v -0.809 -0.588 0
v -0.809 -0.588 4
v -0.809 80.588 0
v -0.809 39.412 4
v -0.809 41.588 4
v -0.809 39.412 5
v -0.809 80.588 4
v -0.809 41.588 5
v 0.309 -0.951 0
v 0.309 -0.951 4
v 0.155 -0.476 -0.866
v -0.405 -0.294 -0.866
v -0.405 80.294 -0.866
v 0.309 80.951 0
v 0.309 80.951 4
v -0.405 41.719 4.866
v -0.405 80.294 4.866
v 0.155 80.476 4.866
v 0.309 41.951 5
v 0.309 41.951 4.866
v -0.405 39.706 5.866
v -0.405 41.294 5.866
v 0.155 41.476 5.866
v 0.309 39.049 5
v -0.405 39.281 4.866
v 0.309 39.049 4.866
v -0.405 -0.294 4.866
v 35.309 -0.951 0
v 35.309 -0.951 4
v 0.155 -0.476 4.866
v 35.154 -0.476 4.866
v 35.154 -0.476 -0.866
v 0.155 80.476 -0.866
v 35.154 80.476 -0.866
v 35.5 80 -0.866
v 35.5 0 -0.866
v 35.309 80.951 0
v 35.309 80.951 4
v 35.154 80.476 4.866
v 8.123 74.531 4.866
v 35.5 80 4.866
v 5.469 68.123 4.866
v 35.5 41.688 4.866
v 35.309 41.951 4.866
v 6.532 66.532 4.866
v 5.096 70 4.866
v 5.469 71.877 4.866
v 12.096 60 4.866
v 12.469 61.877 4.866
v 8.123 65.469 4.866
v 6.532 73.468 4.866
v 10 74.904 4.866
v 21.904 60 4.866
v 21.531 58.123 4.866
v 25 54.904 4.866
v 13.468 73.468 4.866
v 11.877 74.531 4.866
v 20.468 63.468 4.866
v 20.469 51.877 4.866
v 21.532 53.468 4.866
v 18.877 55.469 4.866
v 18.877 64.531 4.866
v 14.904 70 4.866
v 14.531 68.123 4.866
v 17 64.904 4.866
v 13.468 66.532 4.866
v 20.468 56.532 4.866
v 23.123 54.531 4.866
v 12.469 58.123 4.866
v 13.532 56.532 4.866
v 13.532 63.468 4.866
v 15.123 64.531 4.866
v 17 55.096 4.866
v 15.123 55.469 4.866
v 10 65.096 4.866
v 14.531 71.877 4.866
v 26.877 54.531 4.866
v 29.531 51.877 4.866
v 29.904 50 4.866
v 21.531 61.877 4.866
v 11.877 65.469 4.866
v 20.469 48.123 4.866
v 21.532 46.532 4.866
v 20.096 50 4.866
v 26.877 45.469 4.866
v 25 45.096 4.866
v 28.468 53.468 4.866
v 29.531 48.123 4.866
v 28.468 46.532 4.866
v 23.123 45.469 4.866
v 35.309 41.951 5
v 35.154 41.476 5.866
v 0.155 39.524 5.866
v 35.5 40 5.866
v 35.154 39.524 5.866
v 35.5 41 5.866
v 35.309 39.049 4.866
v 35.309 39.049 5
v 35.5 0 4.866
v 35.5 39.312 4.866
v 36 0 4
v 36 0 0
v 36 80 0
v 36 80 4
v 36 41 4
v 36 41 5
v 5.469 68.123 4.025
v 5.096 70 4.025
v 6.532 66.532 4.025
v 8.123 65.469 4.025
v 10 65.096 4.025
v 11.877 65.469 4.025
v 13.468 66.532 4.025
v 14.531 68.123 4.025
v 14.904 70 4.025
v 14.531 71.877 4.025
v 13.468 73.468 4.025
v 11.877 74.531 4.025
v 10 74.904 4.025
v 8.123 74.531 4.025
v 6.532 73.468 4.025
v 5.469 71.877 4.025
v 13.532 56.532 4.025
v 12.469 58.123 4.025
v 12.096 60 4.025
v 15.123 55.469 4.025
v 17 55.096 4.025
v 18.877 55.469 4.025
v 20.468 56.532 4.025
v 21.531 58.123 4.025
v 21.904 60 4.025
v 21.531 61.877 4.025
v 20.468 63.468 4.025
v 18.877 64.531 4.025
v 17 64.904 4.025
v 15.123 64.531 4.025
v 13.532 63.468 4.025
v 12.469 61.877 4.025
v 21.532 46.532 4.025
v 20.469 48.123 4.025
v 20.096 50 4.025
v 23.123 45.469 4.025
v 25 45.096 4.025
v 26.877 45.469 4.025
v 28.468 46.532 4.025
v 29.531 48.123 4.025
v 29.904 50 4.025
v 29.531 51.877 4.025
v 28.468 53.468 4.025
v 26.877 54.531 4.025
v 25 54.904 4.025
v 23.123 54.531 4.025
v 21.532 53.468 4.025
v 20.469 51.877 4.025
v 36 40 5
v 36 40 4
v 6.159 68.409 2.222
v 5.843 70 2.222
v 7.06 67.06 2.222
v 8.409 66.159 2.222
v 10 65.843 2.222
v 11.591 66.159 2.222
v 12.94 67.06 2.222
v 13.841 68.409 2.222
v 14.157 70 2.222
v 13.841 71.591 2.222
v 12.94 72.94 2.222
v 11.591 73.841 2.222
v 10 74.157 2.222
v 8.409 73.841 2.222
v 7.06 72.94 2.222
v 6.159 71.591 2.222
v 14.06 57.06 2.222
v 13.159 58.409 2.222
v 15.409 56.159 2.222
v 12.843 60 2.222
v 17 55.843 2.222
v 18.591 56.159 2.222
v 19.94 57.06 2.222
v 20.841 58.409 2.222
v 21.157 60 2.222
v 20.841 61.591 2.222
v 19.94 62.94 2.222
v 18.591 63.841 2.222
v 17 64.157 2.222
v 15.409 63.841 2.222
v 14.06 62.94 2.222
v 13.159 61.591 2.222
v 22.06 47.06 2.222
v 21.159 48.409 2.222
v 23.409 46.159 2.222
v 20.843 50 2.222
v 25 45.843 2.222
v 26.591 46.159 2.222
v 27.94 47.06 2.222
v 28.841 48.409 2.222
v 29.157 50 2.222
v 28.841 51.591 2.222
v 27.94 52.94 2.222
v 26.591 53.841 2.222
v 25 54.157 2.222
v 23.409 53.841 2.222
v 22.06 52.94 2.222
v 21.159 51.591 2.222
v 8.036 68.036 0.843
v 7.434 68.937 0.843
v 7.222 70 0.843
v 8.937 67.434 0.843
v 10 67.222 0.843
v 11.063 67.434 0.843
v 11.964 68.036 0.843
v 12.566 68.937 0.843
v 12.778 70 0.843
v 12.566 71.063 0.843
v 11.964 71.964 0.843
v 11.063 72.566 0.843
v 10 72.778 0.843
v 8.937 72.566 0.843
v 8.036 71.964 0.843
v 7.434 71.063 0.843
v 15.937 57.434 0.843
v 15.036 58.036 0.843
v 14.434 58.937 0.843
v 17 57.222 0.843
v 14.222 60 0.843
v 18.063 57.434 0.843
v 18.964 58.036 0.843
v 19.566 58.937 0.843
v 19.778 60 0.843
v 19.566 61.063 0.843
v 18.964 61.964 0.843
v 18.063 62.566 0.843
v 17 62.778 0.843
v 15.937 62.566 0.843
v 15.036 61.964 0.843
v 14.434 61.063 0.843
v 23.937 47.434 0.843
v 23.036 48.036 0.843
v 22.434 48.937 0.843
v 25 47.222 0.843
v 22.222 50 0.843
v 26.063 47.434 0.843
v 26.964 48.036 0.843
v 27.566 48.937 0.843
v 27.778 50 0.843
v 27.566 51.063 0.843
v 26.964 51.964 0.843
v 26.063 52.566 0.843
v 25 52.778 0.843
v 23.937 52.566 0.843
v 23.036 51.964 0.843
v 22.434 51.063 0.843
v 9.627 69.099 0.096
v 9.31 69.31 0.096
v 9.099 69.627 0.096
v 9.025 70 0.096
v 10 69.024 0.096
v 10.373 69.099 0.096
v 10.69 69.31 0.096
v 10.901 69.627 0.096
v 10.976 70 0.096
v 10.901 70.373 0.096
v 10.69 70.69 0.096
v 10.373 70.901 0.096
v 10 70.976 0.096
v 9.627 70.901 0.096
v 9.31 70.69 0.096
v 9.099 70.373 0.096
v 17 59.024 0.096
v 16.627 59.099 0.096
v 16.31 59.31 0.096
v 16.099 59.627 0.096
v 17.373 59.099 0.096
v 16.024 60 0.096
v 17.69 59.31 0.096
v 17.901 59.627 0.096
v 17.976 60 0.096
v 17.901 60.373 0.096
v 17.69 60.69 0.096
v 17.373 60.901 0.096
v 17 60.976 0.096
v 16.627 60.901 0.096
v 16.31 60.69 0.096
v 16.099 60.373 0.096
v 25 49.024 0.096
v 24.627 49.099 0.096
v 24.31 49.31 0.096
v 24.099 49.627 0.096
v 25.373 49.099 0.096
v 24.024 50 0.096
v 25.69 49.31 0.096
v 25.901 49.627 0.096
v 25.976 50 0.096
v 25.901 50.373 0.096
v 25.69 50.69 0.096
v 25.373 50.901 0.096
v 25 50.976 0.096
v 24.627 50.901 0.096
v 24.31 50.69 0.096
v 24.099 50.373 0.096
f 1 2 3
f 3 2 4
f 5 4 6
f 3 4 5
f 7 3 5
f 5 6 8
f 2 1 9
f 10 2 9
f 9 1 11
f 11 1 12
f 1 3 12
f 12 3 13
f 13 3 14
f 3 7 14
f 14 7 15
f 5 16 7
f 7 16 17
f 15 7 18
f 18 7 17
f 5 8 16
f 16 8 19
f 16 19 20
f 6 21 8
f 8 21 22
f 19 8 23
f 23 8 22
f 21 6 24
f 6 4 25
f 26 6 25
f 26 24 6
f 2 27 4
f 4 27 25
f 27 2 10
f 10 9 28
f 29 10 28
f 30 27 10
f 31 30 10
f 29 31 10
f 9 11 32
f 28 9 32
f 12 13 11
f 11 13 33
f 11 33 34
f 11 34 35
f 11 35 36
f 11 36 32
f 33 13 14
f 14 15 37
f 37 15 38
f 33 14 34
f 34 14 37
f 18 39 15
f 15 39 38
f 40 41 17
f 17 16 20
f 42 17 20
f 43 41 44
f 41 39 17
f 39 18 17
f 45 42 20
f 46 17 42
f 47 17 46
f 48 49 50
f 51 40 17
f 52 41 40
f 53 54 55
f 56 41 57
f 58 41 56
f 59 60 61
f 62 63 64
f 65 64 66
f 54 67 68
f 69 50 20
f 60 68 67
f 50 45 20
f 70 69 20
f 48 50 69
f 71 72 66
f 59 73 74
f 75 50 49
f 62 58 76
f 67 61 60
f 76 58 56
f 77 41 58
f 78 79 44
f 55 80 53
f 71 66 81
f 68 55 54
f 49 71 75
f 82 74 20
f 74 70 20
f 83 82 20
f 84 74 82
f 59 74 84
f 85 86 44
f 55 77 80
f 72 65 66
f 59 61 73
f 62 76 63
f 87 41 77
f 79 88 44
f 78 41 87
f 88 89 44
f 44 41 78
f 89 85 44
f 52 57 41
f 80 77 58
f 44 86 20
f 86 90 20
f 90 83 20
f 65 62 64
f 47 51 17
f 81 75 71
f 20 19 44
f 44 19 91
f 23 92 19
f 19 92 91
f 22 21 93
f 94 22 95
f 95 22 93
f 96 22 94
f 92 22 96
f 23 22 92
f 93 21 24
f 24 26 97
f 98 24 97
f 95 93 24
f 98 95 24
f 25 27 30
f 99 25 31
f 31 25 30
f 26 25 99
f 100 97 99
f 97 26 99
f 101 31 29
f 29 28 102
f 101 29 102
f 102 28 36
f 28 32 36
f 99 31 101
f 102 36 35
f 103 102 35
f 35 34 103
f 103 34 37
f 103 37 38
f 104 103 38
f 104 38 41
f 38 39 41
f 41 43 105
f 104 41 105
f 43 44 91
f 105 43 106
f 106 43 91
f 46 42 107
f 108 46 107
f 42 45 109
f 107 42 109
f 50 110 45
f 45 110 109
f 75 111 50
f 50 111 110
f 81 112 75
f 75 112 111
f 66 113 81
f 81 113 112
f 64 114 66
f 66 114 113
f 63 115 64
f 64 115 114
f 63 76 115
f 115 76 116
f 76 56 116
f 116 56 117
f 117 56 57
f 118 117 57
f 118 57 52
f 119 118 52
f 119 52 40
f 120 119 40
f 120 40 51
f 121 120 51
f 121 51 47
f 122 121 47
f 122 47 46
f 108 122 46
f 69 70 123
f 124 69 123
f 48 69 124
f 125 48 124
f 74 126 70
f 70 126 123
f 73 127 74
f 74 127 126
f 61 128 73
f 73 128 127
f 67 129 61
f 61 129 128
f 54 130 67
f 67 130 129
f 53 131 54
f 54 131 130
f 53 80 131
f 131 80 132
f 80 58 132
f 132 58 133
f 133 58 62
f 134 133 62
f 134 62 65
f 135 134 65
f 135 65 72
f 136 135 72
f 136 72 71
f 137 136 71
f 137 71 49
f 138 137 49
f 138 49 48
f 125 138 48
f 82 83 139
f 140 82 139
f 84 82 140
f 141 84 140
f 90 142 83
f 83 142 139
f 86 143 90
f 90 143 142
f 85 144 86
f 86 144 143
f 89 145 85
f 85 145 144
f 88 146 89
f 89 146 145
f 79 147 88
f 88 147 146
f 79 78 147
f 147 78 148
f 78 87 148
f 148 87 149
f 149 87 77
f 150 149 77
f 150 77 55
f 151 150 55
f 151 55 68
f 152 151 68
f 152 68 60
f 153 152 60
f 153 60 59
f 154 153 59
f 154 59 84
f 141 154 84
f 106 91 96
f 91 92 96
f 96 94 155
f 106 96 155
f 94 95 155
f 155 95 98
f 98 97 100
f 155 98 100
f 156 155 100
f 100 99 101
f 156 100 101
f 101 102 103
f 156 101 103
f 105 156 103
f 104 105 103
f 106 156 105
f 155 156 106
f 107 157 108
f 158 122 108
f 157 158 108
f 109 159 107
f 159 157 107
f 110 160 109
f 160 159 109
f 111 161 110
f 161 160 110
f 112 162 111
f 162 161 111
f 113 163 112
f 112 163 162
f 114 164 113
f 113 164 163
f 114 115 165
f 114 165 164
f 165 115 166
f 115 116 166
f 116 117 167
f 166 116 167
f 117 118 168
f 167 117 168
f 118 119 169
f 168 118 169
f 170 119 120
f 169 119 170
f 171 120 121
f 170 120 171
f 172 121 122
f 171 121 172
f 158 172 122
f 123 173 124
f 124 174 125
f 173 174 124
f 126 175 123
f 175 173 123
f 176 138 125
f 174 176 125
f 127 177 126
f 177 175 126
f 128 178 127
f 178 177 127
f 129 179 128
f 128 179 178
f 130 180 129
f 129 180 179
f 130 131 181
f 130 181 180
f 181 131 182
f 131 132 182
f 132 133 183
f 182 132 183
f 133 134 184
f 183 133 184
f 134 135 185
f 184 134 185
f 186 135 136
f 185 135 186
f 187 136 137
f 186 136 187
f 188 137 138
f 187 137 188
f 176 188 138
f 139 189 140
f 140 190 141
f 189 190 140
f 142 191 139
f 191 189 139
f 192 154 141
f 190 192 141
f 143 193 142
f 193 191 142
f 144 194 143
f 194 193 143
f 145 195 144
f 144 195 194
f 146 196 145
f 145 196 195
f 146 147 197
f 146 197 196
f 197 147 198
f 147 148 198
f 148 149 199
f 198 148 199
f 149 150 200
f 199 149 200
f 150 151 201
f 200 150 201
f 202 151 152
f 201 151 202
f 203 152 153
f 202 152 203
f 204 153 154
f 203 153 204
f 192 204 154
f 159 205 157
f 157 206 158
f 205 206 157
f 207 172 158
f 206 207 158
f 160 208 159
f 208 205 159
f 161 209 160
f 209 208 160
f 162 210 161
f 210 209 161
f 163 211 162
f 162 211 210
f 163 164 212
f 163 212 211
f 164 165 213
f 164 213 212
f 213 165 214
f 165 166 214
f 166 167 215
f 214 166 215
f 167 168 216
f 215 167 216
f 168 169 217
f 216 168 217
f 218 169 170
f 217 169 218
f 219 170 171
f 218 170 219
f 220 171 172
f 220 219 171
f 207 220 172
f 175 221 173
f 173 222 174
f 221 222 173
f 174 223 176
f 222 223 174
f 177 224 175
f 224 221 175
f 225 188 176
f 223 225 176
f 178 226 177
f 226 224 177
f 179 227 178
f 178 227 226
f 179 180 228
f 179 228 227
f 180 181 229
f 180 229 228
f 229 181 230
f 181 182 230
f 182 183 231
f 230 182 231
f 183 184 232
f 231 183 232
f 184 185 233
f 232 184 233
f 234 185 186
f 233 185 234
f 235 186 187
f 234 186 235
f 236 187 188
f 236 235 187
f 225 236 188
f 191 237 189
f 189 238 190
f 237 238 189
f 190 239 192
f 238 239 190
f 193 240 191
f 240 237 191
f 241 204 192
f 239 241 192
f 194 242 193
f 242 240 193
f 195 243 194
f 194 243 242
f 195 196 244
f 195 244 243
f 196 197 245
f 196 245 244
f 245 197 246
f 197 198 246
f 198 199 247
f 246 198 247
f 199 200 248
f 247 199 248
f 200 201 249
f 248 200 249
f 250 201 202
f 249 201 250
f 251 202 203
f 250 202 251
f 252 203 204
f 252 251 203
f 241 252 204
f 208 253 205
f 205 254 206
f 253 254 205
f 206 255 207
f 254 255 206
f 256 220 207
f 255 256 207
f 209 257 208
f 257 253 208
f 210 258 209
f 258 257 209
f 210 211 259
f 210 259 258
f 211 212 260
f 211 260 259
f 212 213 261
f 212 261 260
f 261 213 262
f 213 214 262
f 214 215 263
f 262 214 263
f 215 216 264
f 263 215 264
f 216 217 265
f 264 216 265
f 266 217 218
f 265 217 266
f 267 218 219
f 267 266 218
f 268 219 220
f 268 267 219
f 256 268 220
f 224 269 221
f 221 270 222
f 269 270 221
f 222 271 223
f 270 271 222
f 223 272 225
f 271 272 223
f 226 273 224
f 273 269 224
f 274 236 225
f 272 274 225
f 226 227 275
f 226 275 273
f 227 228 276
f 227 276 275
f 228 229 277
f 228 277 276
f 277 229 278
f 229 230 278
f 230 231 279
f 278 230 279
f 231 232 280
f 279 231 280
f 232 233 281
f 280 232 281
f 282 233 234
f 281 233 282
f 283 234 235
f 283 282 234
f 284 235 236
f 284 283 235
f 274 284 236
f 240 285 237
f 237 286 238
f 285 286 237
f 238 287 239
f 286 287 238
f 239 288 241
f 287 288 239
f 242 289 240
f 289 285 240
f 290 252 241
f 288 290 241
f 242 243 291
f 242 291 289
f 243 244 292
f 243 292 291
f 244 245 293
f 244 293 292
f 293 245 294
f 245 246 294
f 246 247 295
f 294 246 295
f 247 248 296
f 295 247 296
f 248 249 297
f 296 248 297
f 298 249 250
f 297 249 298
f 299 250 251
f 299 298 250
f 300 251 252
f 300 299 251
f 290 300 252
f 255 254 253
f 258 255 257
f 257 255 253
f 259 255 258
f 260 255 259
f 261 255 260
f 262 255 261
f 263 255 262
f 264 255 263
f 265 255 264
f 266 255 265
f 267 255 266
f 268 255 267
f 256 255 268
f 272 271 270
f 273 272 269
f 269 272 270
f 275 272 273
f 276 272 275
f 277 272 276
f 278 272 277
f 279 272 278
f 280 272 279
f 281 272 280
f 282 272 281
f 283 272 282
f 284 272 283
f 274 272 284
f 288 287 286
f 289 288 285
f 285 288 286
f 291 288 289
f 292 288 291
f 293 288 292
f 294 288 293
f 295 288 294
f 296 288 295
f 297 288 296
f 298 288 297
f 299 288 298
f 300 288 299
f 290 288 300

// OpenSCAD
// Loguncov Maxim 13.12.13


//$fn=128;


translate([0,40,0])
minkowski()
{cube([35,1,5]);
sphere(1);
}

difference() {

//основа
minkowski()
{cube([35,80,4]);
sphere(1);
}

//отверстия


translate([10,70,5])sphere(5);
translate([25,50,5])sphere(5);
translate([17,60,5])sphere(5);



}
